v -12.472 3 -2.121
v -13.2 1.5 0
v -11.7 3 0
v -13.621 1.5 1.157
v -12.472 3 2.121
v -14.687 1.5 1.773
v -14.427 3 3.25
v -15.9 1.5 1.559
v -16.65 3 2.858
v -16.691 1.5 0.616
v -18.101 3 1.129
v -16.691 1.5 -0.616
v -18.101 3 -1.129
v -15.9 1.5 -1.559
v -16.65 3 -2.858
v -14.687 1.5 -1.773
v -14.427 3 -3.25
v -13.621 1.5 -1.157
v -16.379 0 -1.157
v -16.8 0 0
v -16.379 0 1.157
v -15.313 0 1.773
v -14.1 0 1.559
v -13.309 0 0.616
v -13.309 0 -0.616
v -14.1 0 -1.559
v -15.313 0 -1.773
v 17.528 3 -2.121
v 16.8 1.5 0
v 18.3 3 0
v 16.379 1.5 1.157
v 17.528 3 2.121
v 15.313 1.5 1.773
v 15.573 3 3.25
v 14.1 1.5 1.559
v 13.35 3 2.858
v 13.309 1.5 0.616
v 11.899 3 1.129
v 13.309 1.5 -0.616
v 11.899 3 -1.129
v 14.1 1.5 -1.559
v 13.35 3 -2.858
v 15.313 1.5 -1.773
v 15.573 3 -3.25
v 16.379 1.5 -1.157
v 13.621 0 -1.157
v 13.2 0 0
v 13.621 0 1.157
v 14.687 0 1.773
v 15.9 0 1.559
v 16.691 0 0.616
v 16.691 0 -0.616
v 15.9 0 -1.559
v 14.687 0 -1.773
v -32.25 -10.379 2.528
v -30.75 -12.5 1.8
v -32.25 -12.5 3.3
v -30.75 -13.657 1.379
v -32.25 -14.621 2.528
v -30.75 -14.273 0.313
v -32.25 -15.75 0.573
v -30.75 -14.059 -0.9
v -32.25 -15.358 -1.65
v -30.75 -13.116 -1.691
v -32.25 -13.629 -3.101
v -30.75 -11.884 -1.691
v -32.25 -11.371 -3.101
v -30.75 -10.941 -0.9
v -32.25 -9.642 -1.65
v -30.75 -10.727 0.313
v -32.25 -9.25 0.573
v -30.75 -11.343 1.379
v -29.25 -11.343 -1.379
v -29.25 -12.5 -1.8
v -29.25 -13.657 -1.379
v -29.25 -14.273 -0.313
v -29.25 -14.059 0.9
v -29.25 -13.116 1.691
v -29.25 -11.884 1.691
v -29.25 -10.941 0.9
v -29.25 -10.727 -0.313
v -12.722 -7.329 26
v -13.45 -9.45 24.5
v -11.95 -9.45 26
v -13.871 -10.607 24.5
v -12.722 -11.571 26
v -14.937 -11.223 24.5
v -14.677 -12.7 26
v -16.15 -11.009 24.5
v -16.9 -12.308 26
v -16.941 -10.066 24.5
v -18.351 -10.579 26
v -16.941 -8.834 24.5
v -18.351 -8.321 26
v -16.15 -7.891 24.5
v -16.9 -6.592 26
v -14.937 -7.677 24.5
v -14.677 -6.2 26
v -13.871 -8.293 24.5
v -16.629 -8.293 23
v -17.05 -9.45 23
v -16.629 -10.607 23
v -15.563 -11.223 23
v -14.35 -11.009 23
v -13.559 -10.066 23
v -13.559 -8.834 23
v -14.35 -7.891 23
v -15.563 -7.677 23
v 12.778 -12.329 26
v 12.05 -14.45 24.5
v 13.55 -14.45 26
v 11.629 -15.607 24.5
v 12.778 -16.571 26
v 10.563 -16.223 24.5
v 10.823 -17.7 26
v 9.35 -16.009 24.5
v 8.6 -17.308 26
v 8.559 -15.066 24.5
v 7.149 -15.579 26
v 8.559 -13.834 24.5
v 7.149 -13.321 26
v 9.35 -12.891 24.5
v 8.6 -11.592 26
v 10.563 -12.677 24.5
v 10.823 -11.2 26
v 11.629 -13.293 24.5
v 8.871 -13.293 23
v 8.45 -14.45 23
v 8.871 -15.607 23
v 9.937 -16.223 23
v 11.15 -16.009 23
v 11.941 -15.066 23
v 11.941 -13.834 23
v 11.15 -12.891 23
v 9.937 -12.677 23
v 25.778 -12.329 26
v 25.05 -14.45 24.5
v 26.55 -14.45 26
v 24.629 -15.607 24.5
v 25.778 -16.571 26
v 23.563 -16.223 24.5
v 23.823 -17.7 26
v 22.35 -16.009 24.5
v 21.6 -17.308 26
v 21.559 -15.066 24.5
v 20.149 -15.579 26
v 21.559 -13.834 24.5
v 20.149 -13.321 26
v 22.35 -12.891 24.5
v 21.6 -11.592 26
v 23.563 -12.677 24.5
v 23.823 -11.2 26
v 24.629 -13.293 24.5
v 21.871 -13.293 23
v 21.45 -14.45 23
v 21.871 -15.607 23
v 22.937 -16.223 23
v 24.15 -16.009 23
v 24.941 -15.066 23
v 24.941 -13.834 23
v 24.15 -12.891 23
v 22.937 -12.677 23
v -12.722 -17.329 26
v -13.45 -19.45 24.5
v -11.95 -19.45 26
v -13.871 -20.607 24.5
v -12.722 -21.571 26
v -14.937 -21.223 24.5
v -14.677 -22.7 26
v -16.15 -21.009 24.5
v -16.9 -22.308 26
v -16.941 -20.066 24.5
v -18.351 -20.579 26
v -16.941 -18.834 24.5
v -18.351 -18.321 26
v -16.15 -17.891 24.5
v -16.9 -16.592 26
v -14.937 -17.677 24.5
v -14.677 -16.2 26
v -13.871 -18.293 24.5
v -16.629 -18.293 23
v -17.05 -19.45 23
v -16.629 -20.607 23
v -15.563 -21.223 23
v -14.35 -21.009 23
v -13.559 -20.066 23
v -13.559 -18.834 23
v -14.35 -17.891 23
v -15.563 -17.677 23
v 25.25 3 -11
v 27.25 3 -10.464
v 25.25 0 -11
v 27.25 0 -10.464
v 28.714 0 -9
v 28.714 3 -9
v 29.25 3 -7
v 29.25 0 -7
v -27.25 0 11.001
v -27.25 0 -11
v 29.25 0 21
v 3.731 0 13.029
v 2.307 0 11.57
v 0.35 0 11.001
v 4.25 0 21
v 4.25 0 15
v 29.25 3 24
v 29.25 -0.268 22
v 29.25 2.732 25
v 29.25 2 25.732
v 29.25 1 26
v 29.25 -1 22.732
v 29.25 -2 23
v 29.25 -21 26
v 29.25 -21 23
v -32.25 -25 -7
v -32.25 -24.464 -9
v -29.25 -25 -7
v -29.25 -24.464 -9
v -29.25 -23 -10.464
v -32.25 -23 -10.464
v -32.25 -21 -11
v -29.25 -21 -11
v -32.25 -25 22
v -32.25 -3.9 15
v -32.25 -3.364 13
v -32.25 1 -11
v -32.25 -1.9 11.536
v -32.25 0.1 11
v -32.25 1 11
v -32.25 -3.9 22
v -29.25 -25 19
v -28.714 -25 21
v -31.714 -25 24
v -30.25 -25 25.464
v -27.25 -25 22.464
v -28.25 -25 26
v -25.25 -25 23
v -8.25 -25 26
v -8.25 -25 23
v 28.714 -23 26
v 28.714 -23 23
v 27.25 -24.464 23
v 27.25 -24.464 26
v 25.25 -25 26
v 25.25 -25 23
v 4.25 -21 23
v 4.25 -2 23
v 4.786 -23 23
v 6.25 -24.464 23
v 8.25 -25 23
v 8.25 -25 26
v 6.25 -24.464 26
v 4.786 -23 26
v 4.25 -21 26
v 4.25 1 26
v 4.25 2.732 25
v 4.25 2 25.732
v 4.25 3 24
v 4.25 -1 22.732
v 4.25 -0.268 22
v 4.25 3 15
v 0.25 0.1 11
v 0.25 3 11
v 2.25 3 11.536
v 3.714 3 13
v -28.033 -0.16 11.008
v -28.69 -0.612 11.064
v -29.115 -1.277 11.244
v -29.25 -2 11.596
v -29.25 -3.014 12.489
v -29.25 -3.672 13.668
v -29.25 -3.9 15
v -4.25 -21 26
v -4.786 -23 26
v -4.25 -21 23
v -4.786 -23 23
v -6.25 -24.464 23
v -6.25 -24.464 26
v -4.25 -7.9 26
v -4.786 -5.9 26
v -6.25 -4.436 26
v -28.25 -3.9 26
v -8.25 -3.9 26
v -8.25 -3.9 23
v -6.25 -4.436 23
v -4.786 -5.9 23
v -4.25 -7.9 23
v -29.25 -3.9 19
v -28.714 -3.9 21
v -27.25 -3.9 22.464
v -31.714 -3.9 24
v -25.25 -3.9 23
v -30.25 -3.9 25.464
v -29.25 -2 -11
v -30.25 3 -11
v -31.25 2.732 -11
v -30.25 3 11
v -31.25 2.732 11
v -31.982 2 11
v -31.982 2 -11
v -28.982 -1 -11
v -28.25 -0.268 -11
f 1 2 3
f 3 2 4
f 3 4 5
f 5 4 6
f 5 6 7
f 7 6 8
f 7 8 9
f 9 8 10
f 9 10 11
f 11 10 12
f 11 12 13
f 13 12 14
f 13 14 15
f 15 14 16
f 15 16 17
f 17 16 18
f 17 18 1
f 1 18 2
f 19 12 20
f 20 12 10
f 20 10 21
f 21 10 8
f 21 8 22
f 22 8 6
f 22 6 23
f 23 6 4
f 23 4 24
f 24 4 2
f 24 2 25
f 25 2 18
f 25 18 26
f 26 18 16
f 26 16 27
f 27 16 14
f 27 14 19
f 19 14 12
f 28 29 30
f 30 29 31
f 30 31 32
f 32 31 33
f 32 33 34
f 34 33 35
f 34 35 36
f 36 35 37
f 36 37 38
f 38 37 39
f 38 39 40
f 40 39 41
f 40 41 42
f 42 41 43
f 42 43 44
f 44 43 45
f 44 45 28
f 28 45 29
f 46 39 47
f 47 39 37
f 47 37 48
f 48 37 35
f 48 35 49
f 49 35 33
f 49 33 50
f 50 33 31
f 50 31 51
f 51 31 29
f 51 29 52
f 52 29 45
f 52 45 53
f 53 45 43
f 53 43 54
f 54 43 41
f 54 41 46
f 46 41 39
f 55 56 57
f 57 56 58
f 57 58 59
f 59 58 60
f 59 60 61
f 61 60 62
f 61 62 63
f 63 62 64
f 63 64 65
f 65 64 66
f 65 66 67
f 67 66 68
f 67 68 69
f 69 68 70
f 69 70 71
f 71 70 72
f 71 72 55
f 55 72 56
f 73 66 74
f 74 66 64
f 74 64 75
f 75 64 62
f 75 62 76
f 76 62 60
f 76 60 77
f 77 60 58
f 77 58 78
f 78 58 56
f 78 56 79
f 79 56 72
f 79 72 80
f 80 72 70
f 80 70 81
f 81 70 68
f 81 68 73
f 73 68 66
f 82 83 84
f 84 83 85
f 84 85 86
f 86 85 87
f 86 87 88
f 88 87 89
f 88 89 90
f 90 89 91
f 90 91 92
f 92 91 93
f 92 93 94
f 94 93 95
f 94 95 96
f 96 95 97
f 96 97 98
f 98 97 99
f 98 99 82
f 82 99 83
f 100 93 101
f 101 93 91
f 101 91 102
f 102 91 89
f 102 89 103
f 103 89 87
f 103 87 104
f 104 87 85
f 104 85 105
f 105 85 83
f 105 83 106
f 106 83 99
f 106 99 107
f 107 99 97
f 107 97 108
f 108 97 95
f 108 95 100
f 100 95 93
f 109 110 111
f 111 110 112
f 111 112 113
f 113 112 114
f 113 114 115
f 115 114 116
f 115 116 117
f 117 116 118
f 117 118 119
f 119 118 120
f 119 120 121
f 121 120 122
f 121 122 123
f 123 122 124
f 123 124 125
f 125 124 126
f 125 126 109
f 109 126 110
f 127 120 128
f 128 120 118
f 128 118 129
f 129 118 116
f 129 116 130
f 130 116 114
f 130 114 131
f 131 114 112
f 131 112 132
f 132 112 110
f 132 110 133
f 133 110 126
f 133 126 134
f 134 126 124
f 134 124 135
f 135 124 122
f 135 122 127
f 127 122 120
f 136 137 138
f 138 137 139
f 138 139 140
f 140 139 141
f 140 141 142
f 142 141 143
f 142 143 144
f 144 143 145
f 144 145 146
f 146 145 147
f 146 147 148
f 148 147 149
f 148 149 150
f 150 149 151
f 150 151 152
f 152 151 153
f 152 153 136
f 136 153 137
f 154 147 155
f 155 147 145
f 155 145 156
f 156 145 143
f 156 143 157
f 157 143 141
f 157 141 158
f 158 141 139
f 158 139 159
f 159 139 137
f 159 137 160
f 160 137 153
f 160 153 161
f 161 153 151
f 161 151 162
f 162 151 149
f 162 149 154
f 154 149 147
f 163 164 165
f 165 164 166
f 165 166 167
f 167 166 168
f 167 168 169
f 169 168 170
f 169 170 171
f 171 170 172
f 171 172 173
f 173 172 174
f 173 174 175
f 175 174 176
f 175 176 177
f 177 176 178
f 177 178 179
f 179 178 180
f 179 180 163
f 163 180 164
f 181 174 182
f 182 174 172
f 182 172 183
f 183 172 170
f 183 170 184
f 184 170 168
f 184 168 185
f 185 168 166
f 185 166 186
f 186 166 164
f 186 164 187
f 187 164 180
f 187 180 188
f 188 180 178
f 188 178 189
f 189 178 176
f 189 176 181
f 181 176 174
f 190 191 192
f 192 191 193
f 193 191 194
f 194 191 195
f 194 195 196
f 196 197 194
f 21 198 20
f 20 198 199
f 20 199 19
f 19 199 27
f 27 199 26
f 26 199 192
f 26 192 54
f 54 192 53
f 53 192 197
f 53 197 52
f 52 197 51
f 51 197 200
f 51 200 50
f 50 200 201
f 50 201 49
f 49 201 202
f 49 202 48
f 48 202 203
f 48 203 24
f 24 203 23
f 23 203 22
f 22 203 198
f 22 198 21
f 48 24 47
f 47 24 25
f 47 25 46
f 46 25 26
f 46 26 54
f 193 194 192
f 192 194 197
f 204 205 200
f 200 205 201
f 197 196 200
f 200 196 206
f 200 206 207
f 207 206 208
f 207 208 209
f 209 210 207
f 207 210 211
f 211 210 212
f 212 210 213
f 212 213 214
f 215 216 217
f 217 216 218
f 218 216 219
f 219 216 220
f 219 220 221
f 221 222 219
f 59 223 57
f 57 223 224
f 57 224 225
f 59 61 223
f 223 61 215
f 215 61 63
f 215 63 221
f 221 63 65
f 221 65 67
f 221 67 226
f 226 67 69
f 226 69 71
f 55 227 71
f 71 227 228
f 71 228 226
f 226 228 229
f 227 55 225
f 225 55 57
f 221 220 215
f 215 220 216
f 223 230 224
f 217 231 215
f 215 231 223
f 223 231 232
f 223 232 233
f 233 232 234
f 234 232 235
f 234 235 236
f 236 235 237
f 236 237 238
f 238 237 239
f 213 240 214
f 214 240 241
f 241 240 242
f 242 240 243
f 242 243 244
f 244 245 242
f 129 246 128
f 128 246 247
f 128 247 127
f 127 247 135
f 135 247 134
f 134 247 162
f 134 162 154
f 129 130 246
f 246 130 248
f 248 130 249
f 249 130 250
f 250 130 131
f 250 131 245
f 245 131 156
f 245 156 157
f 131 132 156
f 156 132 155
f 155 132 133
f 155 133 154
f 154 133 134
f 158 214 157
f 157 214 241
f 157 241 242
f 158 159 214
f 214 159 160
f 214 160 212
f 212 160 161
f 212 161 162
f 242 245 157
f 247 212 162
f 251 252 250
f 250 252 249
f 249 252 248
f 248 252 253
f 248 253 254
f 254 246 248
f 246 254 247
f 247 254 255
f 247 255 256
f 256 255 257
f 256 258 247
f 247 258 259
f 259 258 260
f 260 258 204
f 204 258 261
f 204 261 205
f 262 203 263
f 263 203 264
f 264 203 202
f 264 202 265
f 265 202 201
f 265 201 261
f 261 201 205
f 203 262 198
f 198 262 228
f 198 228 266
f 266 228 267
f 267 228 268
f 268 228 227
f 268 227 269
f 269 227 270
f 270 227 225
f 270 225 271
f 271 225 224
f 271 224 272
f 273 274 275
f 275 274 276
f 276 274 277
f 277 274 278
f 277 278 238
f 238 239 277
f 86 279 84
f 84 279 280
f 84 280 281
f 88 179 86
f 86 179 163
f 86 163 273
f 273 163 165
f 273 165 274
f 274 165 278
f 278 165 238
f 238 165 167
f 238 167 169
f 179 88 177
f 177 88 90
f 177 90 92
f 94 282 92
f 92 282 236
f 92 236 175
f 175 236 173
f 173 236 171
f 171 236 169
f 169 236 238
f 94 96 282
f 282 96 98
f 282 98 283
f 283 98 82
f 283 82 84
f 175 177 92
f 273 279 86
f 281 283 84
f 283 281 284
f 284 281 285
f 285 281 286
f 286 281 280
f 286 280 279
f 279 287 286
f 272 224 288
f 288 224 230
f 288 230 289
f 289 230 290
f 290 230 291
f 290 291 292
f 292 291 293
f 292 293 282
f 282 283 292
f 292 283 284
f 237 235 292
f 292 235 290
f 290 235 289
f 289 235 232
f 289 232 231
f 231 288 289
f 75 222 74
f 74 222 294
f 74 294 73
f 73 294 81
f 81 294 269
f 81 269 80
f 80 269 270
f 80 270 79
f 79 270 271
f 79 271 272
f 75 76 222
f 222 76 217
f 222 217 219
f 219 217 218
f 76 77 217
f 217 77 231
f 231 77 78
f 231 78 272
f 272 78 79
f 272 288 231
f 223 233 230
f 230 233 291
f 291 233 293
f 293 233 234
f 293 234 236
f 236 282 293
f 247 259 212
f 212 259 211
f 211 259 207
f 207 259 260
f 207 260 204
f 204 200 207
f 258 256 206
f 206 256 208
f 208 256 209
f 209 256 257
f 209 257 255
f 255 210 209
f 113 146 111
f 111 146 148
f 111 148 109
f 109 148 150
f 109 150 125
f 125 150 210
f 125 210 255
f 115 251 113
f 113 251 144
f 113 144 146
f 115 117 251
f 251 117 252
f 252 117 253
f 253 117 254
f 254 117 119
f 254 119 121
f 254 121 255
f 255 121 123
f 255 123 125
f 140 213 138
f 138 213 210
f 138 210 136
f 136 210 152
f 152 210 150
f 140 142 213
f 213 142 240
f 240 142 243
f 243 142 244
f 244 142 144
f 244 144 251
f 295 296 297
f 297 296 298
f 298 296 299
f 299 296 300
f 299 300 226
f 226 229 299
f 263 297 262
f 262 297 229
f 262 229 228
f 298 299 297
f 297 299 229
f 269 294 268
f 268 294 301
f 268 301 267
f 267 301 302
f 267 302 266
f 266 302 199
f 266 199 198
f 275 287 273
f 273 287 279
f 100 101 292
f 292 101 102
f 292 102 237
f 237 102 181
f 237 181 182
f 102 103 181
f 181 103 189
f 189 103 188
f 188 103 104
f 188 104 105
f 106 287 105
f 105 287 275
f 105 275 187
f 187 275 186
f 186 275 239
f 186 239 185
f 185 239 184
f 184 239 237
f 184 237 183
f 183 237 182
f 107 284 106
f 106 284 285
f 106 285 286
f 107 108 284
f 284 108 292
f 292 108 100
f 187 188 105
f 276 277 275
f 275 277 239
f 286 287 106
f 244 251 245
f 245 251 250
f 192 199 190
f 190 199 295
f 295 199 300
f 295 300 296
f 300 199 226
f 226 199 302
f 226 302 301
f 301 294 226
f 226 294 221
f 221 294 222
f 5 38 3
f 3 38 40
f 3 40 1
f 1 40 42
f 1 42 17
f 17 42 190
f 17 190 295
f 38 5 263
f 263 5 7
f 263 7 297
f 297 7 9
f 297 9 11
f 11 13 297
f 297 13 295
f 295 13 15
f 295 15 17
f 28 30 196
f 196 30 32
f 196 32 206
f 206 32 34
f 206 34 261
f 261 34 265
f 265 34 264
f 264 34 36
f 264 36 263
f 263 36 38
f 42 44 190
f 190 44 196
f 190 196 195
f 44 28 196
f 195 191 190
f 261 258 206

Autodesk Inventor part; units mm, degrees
ref_plane "YZ Plane" through (0, 0, 0) normal (1, 0, 0) x (0, 1, 0)
ref_plane "XZ Plane" through (0, 0, 0) normal (0, 1, 0) x (-1, 0, 0)
ref_plane "XY Plane" through (0, 0, 0) normal (0, 0, 1) x (1, 0, 0)
sketch "Эскиз1" plane through (0, 0, 0) normal (0, 1, 0) x (-1, 0, 0)
  line L0 (-29.25, 11) -> (29.25, 11)
  line L1 (29.25, 11) -> (29.25, -11)
  line L2 (29.25, -11) -> (-29.25, -11)
  line L3 (-29.25, -11) -> (-29.25, 11)
  line L4 (-29.25, 11) -> (29.25, -11) construction
  line L5 (29.25, 11) -> (-29.25, -11) construction
  line L6 (-29.25, 11) -> (-4.25, 11)
  line L7 (-4.25, 11) -> (-4.25, 23)
  line L8 (-4.25, 23) -> (-29.25, 23)
  line L9 (-29.25, 23) -> (-29.25, 11)
  point P0 (0, 0)
  dimension "d0" = 22
  dimension "d1" = 58.5
  dimension "d8" = 34
  dimension "d9" = 25
extrude "Выдавливание1" add sketch "Эскиз1" along normal blind 3
sketch "Эскиз2" plane through (-29.25, 0, -11) normal (-1, 0, 0) x (0, 0, 1)
  line L0 (0, 0) -> (22, 0) projected
  line L1 (22, 0) -> (22, 3) projected
  line L2 (0, 3) -> (22, 3) projected
  line L3 (0, 0) -> (0, 3) projected
  line L4 (0, 3) -> (22, 3) projected
  line L5 (22, 3) -> (0, 3)
  line L6 (0, 3) -> (0, -25)
  line L7 (0, -25) -> (22, -25)
  line L8 (22, -25) -> (22, 3)
  line L9 (22, -25) -> (22, -3.9)
  line L10 (22, -3.9) -> (34, -3.9)
  line L11 (34, -3.9) -> (34, -25)
  line L12 (34, -25) -> (22, -25)
  point P0 (11, 0)
  point P1 (22, 0)
  point P2 (22, 3)
  dimension "d4" = 28
  dimension "d7" = 22
  dimension "d13" = 34
  dimension "d14" = 21.1
extrude "Выдавливание2" add sketch "Эскиз2" along normal blind 3
sketch "Эскиз3" plane through (4.25, 0, 23) normal (0, 0, 1) x (1, 0, 0)
  line L0 (0, 0) -> (25, 0) projected
  line L1 (25, 0) -> (25, 3) projected
  line L2 (0, 3) -> (25, 3) projected
  line L3 (0, 0) -> (0, 3) projected
  line L4 (25, 0) -> (25, 3) projected
  line L5 (0, 0) -> (0, 3) projected
  line L6 (25, 3) -> (0, 3)
  line L7 (0, 3) -> (0, -25)
  line L8 (0, -25) -> (25, -25)
  line L9 (25, -25) -> (25, 3)
  point P0 (-4.25, 0)
  dimension "d10" = 28
extrude "Выдавливание3" add sketch "Эскиз3" along normal blind 3
sketch "Эскиз4" plane through (-29.25, -25, 23) normal (0, 0, 1) x (1, 0, 0)
  line L0 (0, 0) -> (0, 21.1) projected
  line L1 (0, 21.1) -> (-3, 21.1) projected
  line L2 (-3, 0) -> (-3, 21.1) projected
  line L3 (0, 0) -> (-3, 0) projected
  line L4 (-3, 0) -> (-3, 21.1)
  line L5 (-3, 21.1) -> (25, 21.1)
  line L6 (25, 21.1) -> (25, 0)
  line L7 (25, 0) -> (-3, 0)
  point P0 (29.25, 25)
  dimension "d15" = 28
extrude "Выдавливание4" add sketch "Эскиз4" along normal blind 3
fillet "Сопряжение1" radius 2 4 edges at (-29.25, 0, 0) (-32.25, 3, 0) (16.75, 3, 26) (16.75, 0, 23)
fillet "Сопряжение1" radius 4 10 edges at (-32.25, -14.45, 26) (-29.25, -14.45, 23) (-4.25, -3.9, 24.5) (-4.25, -25, 24.5) (-30.75, -3.9, 11) (4.25, 1.5, 11) (4.25, -25, 24.5) (29.25, -25, 24.5) (-30.75, -25, -11) (29.25, 1.5, -11)
sketch "Эскиз5" plane through (4.25, 0, 26) normal (0, 0, 1) x (1, 0, 0)
  circle A0 centre (6, -14.45) radius 1.8
  circle A1 centre (19, -14.45) radius 1.8
  arc A2 (21, -25) -> (25, -21) centre (21, -21) ccw projected
  line L0 (25, -21) -> (25, 1) projected
  line L1 (0, 1) -> (25, 1) projected
  line L2 (0, 1) -> (0, -21) projected
  arc A3 (0, -21) -> (4, -25) centre (4, -21) ccw projected
  line L3 (4, -25) -> (21, -25) projected
  line L4 (4, -25) -> (21, -25) construction
  line L5 (12.5, -25) -> (12.5, 1) construction
  line L6 (6, -14.45) -> (19, -14.45) construction
  line L7 (0, 0) -> (25, 0) construction
  arc A4 (-12.5, -25) -> (-8.5, -21) centre (-12.5, -21) ccw projected
  line L8 (-8.5, -21) -> (-8.5, -7.9) projected
  arc A5 (-8.5, -7.9) -> (-12.5, -3.9) centre (-12.5, -7.9) ccw projected
  line L9 (-12.5, -3.9) -> (-32.5, -3.9) projected
  line L10 (-32.5, -25) -> (-32.5, -3.9) projected
  line L11 (-32.5, -25) -> (-12.5, -25) projected
  line L12 (-36.5, -3.9) -> (-36.5, -25) projected
  circle A6 centre (-19.5, -19.45) radius 2.2361
  circle A7 centre (-19.5, -9.45) radius 2.6907
  line L13 (-19.5, -19.45) -> (-19.5, -9.45) construction
  line L14 (-19.5, -14.45) -> (-4.25, -14.45) construction
  point P0 (-4.25, 0)
  dimension "d21" = 3.6
  dimension "d22" = 3.6
  dimension "d23" = 13
  dimension "d33" = 13
  dimension "d34" = 10
  dimension "d35" = 21.1
  dimension "d36" = 10.55
hole "Отверстие1" at (10.25, -14.45, 26) at (23.25, -14.45, 26) at (-15.25, -9.45, 26) at (-15.25, -19.45, 26) direction (0, 0, -1) diameter 3.6 depth 5 countersink diameter 6.6 countersink angle 90 clearance for "с потайной головкой ГОСТ 12876-67" size "M3" standard "ГОСТ"
sketch "Эскиз6" plane through (-32.25, 0, -11) normal (-1, 0, 0) x (0, 0, 1)
  line L0 (32, 0) -> (4, 0) construction
  line L1 (22, 0) -> (0, 0) construction
  line L2 (0, 0) -> (0, -25) construction
  line L3 (0, -25) -> (22, -25) construction
  line L4 (22, -25) -> (22, 0) construction
  arc A0 (0, -21) -> (4, -25) centre (4, -21) ccw construction
  line L5 (4, -25) -> (33, -25) construction
  line L6 (33, -3.9) -> (33, -25) construction
  line L7 (26, -3.9) -> (33, -3.9) construction
  arc A1 (22, 0.1) -> (26, -3.9) centre (26, 0.1) ccw construction
  line L8 (22, 0.1) -> (22, 1) construction
  line L9 (0, 1) -> (22, 1) construction
  line L10 (0, 1) -> (0, -21) construction
  circle A2 centre (11, -12.5) radius 2.7933
  arc A3 (22, 0.1) -> (26, -3.9) centre (26, 0.1) ccw construction
  line L11 (22, 0.1) -> (0, -25) construction
  line L12 (0, 0) -> (0, -2) construction
  line L13 (22, -25) -> (0, 0) construction
  point P0 (11, 0)
hole "Отверстие2" at (-32.25, -12.5, 0) direction (1, 0, 0) diameter 3.6 depth 6 countersink diameter 6.6 countersink angle 90 clearance for "с потайной головкой ГОСТ 12876-67" size "M3" standard "ГОСТ"
sketch "Эскиз7" plane through (0, 3, 0) normal (0, 1, 0) x (1, 0, 0)
  arc A0 (29.25, 7) -> (25.25, 11) centre (25.25, 7) ccw construction
  line L0 (25.25, 11) -> (-30.25, 11) construction
  line L1 (-30.25, -11) -> (-30.25, 11) construction
  line L2 (0.25, -11) -> (-30.25, -11) construction
  arc A1 (4.25, -15) -> (0.25, -11) centre (0.25, -15) ccw construction
  line L3 (4.25, -15) -> (4.25, -24) construction
  line L4 (29.25, -24) -> (4.25, -24) construction
  line L5 (29.25, 7) -> (29.25, -24) construction
  line L6 (29.25, -11) -> (29.25, 11) construction
  line L7 (29.25, 11) -> (-29.25, 11) construction
  line L8 (29.25, 7) -> (29.25, -24) construction
  line L9 (-29.2407, 0) -> (29.25, 0) construction
  line L10 (29.25, -21) -> (29.25, 7) construction
  line L11 (-29.25, -11.5956) -> (-29.25, 11) construction
  line L12 (-29.25, -11) -> (-29.25, 11) construction
  line L13 (-29.25, -11) -> (29.25, -11) construction
  circle A2 centre (-15, 0) radius 3.1623 construction
  circle A3 centre (15, 0) radius 5 construction
  line L14 (0, 0) -> (0, 6.5971) construction
  point P0 (-32.25, -11)
  point P1 (-29.25, 0)
  dimension "d44" = 30
hole "Отверстие3" at (-15, 3, 0) at (15, 3, 0) direction (0, -1, 0) diameter 3.6 depth 6 countersink diameter 6.6 countersink angle 90 clearance for "с потайной головкой ГОСТ 12876-67" size "M3" standard "ГОСТ"
equation "\"d36\" = 0.5 * d35"
properties part number "кронштейн"
